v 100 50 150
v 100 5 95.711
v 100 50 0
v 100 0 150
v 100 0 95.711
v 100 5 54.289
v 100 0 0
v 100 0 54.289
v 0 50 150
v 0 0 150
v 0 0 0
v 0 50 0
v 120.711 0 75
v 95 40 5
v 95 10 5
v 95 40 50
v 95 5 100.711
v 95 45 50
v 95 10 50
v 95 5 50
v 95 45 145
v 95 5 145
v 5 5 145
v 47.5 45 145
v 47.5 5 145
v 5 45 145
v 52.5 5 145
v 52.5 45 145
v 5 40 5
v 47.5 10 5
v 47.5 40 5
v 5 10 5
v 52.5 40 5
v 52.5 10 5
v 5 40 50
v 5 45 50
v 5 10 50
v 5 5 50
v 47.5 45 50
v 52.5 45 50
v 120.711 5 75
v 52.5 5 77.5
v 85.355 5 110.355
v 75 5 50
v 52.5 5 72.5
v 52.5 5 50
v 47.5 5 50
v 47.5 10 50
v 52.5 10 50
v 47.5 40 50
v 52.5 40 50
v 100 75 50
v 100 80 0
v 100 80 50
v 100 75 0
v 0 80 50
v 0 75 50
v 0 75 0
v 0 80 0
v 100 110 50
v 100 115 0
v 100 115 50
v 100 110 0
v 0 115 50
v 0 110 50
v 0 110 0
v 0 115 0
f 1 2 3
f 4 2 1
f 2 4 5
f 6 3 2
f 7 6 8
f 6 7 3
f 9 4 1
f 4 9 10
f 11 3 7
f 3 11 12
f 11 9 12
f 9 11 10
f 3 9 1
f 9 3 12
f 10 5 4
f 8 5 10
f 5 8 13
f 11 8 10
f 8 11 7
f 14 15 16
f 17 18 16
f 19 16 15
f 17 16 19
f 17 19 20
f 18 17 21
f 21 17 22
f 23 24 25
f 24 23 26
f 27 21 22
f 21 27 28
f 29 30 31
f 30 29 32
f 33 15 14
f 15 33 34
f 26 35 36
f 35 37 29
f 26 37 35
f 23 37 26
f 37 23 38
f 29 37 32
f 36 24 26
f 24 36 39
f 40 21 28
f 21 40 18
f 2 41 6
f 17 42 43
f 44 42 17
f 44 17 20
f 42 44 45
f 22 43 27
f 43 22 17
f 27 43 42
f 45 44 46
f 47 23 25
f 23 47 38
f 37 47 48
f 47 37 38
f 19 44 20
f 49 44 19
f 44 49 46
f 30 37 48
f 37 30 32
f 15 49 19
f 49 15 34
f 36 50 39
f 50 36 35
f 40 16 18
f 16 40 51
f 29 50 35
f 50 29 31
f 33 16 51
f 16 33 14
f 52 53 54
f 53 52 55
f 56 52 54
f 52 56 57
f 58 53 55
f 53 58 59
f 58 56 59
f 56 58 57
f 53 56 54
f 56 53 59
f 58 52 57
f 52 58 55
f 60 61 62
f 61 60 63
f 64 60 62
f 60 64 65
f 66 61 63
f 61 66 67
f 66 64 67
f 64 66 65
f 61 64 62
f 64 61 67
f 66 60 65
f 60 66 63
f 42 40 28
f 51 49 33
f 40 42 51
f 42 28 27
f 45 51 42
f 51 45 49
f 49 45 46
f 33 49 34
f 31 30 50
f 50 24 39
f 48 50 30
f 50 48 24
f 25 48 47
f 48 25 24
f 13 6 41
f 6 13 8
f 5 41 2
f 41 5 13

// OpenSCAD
// Dimensions
outer_frame_width = 100;
outer_frame_height = 150;
outer_frame_depth = 50;
outer_frame_thickness = 5;

shelf_thickness = 5;
shelf_spacing = 30;

vertical_divider_thickness = 5;

angled_support_thickness = 5;
angled_support_angle = 45; // degrees

// Outer Frame
module outer_frame() {
    difference() {
        cube([outer_frame_width, outer_frame_depth, outer_frame_height]);
        translate([outer_frame_thickness, outer_frame_thickness, outer_frame_thickness])
            cube([outer_frame_width - 2 * outer_frame_thickness, 
                  outer_frame_depth - 2 * outer_frame_thickness, 
                  outer_frame_height - 2 * outer_frame_thickness]);
    }
}

// Horizontal Shelf
module horizontal_shelf(y_position) {
    translate([0, y_position, 0])
        cube([outer_frame_width, shelf_thickness, outer_frame_depth]);
}

// Vertical Divider
module vertical_divider() {
    translate([(outer_frame_width - vertical_divider_thickness) / 2, 0, 0])
        cube([vertical_divider_thickness, outer_frame_depth, outer_frame_height]);
}

// Angled Support Panel
module angled_support_panel() {
    translate([outer_frame_width / 2, 0, outer_frame_height / 2])
        rotate([0, angled_support_angle, 0])
            cube([outer_frame_width / 2, angled_support_thickness, outer_frame_depth]);
}

// Assemble the model
module model() {
    // Layer 1: Outer Frame
    outer_frame();

    // Layer 2-5: Horizontal Shelves
    for (i = [0:3]) {
        horizontal_shelf(outer_frame_thickness + i * (shelf_spacing + shelf_thickness));
    }

    // Layer 6: Vertical Divider
    vertical_divider();

    // Layer 7: Angled Support Panel
    angled_support_panel();
}

// Render the model
model();
